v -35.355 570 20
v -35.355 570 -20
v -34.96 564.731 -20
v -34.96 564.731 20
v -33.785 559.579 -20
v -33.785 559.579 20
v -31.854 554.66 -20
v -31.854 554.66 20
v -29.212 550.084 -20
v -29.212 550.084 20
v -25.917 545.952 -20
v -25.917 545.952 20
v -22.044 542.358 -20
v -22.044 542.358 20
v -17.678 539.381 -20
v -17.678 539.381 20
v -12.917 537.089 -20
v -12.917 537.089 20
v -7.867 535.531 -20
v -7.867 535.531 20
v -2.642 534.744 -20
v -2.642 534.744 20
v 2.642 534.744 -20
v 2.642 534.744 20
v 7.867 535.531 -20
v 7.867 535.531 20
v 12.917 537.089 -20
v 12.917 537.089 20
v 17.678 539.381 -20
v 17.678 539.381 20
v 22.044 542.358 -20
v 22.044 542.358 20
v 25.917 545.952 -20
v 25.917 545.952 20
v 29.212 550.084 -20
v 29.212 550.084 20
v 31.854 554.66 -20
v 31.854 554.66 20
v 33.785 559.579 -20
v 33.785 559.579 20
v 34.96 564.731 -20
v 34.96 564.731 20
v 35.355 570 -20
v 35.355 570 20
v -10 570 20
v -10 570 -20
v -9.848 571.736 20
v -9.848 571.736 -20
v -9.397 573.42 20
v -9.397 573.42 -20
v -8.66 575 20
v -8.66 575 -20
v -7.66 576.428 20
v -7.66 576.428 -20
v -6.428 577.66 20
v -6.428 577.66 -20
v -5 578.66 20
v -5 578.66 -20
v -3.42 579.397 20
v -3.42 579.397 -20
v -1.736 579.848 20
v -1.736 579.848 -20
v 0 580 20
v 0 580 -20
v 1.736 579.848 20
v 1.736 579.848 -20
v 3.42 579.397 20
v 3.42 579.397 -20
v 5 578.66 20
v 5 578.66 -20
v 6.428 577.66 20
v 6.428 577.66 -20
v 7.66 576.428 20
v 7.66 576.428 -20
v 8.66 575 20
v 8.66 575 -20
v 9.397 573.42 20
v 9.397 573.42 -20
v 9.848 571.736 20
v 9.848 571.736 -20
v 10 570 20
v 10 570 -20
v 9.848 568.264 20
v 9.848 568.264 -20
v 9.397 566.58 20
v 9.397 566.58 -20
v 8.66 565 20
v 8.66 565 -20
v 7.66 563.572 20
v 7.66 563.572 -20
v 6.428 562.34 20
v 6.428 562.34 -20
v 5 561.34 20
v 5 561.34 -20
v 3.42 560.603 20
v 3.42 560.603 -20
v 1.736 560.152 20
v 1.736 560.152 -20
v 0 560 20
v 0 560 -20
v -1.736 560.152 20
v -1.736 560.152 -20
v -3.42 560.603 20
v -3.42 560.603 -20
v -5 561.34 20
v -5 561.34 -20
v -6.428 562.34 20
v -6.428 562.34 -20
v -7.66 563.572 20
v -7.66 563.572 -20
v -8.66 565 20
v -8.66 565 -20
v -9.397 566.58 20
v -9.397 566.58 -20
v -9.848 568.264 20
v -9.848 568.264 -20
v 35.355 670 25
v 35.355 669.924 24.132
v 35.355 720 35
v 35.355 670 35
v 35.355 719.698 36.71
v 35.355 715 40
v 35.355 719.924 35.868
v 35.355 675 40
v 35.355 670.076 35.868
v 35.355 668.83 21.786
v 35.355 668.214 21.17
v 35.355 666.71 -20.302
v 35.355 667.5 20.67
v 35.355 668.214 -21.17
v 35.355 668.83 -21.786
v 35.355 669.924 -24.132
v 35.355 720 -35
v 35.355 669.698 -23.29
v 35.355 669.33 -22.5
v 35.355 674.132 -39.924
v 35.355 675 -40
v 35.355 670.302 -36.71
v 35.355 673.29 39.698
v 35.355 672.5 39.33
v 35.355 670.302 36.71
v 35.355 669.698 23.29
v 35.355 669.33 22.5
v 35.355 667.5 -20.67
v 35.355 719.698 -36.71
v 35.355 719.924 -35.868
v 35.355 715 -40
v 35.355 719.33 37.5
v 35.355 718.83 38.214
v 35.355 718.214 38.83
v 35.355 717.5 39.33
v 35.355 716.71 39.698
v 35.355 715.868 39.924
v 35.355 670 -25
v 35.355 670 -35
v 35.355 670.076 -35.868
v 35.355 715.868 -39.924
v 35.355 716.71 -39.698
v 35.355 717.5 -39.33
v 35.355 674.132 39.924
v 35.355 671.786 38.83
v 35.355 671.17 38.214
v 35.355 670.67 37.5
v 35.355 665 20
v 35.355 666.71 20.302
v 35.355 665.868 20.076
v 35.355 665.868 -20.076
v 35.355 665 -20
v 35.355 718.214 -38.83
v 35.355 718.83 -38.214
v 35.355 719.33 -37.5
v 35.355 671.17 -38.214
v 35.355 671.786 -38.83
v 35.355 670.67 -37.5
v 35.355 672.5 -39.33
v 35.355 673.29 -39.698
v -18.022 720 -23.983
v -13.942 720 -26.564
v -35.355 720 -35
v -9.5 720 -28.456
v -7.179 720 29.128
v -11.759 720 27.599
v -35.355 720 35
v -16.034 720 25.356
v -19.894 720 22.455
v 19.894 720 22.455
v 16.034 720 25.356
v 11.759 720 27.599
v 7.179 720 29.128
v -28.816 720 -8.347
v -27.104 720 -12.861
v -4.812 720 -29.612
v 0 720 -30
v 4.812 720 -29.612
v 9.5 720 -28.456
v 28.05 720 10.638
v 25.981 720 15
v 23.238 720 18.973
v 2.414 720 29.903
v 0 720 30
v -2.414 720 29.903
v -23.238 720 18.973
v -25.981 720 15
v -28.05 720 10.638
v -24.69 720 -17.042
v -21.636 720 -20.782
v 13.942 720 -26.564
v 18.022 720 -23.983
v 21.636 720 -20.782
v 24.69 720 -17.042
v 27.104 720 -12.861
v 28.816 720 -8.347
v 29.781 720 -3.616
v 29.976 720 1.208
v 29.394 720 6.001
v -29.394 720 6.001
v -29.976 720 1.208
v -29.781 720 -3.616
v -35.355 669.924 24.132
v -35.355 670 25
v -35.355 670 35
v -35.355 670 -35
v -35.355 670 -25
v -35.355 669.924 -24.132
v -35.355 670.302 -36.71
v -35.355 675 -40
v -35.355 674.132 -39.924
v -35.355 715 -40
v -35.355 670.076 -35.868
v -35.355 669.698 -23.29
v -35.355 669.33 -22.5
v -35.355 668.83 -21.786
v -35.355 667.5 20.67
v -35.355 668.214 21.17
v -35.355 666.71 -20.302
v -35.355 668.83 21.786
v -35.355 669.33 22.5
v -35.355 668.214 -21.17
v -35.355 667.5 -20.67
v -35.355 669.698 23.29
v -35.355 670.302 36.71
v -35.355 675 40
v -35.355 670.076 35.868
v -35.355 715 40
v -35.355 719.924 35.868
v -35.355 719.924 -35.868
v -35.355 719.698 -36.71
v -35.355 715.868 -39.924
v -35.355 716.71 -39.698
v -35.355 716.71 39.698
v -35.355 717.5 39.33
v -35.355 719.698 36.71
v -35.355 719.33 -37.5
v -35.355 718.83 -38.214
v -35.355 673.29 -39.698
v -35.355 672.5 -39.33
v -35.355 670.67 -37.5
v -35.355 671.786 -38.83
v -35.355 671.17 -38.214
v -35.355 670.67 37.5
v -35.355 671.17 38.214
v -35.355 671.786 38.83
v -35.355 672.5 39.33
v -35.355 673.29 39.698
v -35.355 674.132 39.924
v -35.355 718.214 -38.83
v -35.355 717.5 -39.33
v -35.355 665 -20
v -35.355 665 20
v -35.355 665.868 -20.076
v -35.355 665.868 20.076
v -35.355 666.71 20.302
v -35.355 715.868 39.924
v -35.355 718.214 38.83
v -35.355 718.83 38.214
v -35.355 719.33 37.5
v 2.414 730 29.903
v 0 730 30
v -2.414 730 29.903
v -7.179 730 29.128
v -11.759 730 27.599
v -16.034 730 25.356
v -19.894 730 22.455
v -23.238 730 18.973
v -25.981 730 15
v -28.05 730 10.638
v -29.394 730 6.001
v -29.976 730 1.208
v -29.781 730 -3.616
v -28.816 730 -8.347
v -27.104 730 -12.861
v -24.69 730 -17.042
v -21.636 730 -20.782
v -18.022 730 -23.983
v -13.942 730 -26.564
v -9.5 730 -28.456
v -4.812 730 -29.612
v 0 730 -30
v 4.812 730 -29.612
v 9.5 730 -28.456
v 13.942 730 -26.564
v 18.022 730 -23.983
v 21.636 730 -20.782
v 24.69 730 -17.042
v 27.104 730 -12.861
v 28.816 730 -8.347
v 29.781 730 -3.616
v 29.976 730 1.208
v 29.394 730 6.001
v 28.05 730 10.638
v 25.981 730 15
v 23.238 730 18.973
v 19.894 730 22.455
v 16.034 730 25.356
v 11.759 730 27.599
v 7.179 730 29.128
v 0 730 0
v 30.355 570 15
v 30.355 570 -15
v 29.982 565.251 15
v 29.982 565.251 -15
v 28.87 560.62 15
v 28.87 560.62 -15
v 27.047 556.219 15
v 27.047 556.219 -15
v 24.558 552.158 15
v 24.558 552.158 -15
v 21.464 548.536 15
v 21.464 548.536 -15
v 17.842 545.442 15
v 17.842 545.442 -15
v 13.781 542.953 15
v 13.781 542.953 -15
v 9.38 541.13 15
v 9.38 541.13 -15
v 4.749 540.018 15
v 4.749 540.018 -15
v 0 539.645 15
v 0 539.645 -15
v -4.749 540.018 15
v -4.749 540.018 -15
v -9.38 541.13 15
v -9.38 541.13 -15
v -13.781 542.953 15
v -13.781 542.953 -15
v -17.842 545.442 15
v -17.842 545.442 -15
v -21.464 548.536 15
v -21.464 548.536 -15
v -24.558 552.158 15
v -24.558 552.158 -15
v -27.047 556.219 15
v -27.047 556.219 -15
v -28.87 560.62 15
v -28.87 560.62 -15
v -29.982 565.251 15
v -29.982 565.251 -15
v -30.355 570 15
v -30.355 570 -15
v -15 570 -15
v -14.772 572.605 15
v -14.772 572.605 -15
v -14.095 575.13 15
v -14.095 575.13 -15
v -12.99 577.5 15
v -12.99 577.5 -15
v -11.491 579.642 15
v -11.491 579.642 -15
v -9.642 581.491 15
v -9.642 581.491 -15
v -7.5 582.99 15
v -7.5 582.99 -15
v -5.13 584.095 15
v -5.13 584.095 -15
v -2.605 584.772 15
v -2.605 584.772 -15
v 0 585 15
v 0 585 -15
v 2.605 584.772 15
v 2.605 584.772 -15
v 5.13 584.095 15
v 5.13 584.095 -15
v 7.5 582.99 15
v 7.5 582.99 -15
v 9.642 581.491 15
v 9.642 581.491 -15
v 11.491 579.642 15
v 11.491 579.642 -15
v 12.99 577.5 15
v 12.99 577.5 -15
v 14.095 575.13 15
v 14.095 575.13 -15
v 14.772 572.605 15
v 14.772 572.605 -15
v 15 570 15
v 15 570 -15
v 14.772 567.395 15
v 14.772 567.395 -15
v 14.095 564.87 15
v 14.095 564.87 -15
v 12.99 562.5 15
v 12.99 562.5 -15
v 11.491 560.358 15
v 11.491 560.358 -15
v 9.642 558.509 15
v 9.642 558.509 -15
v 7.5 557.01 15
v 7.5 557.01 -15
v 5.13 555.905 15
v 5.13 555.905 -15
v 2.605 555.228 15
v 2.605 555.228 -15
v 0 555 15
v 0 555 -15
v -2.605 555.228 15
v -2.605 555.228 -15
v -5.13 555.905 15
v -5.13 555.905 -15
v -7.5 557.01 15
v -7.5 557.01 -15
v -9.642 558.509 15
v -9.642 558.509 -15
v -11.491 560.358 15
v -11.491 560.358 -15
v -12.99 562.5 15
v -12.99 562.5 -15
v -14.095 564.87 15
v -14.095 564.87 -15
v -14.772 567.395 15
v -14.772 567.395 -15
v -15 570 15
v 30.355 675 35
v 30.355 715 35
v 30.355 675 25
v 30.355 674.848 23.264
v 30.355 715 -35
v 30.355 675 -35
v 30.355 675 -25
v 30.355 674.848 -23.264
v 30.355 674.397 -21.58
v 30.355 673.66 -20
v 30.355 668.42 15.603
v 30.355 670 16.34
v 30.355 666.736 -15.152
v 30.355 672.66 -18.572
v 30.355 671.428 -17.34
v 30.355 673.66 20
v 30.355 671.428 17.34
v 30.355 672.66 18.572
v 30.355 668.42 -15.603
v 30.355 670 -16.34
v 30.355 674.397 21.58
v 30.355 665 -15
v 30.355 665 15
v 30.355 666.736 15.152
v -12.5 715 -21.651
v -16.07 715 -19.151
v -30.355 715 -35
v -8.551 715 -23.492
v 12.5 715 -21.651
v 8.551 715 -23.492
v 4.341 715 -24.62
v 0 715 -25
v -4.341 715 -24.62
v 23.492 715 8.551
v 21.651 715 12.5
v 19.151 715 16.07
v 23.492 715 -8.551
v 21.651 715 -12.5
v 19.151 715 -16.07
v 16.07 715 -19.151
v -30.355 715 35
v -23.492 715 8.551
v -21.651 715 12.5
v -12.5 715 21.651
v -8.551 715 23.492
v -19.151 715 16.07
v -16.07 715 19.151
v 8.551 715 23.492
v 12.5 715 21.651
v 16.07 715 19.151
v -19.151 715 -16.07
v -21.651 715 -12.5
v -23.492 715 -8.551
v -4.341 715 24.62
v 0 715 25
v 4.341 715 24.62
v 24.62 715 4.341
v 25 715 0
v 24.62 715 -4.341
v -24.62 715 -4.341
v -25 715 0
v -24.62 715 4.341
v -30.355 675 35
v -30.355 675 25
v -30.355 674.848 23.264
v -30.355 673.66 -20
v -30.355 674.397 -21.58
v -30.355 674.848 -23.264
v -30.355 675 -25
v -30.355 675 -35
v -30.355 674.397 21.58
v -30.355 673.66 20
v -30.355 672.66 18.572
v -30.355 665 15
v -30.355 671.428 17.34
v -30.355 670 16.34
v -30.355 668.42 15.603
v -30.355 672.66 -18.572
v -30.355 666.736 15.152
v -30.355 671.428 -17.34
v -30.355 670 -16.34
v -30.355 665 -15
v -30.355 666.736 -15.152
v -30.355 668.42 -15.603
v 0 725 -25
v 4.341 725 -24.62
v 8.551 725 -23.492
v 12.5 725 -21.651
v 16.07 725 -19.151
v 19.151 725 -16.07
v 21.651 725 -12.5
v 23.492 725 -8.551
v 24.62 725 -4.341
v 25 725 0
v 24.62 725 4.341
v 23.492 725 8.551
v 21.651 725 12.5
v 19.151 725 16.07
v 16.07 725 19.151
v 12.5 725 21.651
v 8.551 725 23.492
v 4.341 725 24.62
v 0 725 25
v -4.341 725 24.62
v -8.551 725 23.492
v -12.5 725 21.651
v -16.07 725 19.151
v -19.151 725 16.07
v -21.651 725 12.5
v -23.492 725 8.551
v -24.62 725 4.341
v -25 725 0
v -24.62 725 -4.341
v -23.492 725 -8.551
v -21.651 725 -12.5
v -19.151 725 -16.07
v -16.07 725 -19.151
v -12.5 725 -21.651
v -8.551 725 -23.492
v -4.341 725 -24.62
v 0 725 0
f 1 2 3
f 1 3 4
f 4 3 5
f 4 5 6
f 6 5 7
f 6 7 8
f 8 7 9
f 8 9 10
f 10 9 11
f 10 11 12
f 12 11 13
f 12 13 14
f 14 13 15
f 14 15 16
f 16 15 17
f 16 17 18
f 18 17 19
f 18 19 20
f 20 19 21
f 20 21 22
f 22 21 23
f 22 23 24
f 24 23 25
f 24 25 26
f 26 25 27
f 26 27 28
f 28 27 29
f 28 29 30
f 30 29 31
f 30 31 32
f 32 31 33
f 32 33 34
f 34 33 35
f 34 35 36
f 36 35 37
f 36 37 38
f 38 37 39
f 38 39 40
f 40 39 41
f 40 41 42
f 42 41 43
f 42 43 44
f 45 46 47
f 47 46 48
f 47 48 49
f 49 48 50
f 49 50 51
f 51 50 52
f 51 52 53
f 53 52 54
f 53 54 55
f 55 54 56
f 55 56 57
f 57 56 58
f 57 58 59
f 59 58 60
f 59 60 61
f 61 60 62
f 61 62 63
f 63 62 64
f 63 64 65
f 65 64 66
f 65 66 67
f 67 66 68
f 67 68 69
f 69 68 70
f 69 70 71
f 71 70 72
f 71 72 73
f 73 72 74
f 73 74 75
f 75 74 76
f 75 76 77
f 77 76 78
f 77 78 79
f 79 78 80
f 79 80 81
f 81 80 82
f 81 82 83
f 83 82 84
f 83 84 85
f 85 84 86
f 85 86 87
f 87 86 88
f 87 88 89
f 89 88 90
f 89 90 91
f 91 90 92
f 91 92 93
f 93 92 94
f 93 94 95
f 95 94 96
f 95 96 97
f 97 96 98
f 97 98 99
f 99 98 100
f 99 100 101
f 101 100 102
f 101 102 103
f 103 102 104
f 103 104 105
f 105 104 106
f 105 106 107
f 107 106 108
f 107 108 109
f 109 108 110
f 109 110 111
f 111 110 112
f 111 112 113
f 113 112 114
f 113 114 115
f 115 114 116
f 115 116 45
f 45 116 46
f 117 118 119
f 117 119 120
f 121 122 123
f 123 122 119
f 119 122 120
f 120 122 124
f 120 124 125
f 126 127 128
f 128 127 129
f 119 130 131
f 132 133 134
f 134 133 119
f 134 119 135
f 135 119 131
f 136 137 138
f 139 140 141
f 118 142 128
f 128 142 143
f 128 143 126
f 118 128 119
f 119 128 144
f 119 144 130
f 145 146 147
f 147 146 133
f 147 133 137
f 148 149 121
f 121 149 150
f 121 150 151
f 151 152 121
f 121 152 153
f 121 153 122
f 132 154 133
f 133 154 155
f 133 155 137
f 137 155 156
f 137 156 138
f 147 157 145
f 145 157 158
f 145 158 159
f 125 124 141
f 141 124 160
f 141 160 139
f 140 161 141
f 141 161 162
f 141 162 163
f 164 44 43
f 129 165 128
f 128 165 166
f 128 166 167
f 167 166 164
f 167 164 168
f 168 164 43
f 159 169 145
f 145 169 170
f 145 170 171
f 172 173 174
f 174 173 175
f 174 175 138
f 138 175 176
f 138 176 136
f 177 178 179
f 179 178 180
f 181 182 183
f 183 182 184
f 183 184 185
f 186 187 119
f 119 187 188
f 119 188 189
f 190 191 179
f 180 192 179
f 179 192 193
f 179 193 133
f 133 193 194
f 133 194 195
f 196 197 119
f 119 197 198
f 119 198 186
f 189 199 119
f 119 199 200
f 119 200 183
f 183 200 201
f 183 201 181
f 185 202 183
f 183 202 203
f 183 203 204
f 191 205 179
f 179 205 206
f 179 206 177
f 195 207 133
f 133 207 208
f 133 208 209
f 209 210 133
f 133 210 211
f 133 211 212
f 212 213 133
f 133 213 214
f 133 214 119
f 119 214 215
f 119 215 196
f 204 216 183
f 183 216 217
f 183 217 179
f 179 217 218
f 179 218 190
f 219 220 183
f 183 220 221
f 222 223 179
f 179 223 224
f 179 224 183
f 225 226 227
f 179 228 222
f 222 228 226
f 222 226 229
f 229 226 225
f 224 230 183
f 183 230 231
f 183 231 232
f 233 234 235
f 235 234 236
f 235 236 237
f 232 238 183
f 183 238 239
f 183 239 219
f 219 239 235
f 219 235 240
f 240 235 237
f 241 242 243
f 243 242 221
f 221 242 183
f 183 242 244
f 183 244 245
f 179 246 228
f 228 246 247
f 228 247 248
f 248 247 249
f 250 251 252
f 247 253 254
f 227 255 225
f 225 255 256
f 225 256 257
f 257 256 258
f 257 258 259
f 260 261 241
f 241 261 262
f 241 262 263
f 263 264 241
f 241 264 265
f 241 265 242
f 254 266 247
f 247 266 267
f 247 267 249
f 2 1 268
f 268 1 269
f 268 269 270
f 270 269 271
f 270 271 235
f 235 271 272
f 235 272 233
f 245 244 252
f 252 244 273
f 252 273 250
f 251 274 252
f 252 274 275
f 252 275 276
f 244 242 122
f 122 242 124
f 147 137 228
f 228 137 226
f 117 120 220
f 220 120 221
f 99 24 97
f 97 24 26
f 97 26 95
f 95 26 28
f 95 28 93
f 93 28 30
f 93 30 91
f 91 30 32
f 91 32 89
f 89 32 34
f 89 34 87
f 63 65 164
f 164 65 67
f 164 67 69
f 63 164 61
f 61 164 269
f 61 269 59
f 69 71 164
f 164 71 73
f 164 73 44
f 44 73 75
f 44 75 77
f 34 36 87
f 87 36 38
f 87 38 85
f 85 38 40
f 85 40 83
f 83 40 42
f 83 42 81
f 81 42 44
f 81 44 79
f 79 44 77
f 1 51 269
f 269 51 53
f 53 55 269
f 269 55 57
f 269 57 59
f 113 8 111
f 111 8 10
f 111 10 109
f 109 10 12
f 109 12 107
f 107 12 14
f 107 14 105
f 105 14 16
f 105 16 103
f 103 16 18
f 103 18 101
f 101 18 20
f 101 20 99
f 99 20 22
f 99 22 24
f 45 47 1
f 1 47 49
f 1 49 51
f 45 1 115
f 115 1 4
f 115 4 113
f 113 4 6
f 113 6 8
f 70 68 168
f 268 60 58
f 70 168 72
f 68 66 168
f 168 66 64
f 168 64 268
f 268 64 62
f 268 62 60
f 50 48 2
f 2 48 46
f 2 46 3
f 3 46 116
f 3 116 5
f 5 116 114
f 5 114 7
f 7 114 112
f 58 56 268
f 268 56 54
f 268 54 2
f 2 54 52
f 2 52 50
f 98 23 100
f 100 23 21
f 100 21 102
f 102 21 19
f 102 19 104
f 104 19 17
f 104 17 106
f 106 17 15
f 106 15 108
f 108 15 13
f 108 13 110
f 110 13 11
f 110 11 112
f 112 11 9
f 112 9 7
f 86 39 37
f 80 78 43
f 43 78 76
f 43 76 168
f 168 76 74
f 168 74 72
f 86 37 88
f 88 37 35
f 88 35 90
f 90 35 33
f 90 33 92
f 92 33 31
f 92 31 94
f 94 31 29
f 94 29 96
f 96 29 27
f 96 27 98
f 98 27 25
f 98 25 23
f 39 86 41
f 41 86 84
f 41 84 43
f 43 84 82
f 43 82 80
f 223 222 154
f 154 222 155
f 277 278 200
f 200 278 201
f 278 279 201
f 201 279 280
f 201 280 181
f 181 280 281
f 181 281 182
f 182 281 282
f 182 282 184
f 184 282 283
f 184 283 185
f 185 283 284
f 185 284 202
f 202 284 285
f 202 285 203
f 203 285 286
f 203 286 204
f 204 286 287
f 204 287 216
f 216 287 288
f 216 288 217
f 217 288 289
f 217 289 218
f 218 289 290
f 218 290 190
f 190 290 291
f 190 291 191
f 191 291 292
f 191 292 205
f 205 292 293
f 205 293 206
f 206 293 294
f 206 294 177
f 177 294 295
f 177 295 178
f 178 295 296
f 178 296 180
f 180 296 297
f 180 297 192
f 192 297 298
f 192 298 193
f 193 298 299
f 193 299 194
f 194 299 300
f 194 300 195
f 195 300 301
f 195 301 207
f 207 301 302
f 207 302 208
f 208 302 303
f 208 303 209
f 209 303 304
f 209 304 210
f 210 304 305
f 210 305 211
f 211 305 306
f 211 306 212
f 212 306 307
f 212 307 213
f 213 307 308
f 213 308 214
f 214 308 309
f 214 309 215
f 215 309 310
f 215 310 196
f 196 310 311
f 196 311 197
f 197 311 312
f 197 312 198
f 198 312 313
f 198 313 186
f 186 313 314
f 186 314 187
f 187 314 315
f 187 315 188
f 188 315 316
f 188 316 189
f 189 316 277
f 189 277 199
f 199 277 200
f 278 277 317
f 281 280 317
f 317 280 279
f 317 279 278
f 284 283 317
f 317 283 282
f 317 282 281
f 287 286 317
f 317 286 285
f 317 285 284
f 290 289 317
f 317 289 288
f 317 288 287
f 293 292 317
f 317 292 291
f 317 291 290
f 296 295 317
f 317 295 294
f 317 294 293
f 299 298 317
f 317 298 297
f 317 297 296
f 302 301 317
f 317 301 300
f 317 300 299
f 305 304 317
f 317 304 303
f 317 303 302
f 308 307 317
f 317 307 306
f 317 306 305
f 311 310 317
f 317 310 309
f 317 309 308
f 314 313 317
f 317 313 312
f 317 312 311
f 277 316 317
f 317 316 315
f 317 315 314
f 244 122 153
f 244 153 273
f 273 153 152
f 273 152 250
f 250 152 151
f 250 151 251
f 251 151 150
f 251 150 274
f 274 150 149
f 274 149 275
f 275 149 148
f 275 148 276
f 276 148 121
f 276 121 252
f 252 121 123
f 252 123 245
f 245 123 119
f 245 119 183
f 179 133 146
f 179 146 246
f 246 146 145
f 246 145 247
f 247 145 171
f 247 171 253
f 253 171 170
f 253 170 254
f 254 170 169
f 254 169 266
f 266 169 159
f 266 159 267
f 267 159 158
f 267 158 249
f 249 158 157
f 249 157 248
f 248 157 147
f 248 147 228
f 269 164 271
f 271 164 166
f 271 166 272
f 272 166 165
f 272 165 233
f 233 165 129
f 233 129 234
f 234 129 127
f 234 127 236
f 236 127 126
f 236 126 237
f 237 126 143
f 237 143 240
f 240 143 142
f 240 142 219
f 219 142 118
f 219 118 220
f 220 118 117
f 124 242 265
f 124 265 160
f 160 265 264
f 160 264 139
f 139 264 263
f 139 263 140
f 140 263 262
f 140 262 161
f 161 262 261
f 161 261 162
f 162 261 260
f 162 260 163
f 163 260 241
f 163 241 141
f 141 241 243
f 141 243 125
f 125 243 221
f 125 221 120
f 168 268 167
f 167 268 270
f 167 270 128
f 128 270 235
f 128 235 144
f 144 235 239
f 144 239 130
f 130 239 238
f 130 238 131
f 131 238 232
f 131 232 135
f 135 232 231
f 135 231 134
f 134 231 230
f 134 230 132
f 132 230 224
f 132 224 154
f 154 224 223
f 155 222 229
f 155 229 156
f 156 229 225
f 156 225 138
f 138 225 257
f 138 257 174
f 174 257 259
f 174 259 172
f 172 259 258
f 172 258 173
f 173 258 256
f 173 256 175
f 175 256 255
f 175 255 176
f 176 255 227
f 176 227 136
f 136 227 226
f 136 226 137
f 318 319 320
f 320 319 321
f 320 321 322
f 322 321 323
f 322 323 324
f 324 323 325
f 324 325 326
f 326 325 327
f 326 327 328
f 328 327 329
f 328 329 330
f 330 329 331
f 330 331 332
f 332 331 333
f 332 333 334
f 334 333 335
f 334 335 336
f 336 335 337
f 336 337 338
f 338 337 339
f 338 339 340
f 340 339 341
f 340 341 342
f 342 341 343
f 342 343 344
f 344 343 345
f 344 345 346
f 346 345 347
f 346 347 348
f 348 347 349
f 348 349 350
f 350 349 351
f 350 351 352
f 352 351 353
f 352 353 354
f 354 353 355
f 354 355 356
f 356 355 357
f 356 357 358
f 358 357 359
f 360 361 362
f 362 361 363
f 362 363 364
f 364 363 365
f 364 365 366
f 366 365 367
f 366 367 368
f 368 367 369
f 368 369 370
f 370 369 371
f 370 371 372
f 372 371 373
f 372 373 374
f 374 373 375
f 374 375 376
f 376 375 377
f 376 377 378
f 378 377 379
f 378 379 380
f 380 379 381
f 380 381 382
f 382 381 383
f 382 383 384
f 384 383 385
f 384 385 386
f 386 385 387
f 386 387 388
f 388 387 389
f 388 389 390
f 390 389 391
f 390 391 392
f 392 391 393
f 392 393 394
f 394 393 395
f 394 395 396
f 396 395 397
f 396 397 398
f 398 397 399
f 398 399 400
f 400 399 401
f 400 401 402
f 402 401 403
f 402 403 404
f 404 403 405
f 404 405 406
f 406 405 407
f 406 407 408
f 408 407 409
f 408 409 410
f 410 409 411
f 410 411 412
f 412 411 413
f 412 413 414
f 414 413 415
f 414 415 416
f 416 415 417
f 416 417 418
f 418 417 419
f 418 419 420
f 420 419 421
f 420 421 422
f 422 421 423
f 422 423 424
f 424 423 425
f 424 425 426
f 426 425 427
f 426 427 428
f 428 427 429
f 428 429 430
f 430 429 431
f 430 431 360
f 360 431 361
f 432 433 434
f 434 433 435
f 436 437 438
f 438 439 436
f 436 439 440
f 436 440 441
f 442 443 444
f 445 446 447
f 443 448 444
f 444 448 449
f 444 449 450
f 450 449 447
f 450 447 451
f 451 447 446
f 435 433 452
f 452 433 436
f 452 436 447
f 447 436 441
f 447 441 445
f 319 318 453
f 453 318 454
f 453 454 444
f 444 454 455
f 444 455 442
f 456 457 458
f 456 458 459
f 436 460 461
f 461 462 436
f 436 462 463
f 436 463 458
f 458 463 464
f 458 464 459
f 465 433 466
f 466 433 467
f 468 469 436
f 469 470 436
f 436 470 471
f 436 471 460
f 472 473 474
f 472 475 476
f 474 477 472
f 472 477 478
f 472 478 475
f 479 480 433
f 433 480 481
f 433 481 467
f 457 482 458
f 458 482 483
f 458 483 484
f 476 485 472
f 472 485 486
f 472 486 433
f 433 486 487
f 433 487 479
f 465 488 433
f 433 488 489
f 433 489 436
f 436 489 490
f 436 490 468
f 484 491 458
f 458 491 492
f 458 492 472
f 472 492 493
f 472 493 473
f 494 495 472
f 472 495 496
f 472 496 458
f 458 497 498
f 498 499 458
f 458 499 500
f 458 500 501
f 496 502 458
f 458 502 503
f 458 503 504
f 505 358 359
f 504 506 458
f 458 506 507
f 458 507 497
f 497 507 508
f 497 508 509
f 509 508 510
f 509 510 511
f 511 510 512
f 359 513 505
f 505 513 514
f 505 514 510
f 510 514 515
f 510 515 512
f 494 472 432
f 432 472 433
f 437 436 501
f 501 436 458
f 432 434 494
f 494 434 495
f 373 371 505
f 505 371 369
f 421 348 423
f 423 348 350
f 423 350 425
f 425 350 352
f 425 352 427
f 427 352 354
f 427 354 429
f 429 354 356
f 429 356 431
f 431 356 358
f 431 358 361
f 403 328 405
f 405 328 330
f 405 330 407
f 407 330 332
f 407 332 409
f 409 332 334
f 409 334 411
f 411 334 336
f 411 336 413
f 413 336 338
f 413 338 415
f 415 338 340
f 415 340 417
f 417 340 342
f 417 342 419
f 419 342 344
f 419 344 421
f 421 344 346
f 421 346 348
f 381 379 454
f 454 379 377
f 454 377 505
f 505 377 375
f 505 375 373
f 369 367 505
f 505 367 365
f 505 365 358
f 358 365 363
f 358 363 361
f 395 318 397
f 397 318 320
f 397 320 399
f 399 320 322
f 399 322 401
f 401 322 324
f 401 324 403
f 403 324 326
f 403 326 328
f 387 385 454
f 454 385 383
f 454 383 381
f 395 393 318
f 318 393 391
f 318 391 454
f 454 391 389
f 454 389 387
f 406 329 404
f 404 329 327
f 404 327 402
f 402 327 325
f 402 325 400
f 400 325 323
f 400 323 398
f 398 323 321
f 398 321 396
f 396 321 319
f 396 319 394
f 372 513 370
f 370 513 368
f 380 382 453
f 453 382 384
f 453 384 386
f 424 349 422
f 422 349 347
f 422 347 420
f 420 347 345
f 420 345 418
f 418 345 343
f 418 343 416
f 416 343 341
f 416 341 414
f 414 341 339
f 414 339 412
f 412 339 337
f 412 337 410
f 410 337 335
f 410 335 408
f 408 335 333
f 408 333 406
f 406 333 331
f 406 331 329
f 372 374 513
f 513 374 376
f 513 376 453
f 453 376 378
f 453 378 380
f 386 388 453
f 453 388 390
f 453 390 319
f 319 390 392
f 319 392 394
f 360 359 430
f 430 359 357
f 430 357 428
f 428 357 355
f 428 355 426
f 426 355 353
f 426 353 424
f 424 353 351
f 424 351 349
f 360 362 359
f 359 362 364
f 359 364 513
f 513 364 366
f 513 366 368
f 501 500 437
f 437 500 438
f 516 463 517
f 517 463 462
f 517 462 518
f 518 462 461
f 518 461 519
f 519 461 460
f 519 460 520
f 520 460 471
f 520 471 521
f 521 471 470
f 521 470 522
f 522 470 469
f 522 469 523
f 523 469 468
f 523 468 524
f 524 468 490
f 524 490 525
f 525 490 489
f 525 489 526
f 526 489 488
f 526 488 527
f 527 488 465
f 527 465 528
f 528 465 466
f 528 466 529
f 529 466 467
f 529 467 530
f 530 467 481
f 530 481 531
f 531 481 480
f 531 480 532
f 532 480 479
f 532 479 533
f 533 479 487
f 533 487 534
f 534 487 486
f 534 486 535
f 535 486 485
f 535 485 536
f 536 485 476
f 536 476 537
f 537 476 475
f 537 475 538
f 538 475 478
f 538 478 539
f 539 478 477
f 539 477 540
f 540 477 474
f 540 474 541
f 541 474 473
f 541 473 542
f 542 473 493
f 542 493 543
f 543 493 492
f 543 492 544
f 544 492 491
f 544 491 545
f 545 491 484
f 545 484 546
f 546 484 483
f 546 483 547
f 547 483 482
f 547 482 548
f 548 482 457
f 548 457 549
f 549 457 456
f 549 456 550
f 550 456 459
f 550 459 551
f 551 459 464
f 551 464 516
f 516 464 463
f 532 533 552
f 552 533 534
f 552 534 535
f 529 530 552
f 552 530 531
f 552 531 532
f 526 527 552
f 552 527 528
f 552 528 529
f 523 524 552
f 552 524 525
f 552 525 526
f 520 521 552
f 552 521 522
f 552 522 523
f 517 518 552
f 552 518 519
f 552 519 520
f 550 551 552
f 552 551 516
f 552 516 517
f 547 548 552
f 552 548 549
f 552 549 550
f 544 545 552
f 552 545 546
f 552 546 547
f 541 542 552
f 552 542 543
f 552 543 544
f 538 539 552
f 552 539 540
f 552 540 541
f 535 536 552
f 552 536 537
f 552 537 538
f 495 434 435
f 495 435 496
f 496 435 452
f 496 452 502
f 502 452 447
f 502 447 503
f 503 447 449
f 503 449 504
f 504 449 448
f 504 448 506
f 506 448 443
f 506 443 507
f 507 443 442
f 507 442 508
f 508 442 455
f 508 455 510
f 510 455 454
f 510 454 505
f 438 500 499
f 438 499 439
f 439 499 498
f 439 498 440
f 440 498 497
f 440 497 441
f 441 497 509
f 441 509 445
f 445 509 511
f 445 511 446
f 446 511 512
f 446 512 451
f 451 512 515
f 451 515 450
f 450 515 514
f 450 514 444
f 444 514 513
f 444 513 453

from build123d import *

# Parameters (mm, degrees)
BOSS_EXTRUDE1_DEPTH      = 40
BOSS_EXTRUDE1_DEPTH_BACK = 40
SKETCH1_R                = 10
CUT_EXTRUDE1_START       = -20
CUT_EXTRUDE1_DEPTH       = 20
CUT_EXTRUDE2_START       = -20
CUT_EXTRUDE2_DEPTH       = 20
SKETCH6_R                = 30
BOSS_EXTRUDE2_DEPTH      = 10
FILLET2_R                = 5
SHELL1_START             = -15
SHELL1_OUTLINE_R         = 15
SHELL1_DEPTH             = 30
SHELL1_START_2           = -35
SHELL1_2_OUTLINE_W       = 60.710678118
SHELL1_2_OUTLINE_H       = 40
SHELL1_2_DEPTH           = 70
SHELL1_START_3           = 715
SHELL1_3_OUTLINE_R       = 25
SHELL1_3_DEPTH           = 10
SHELL1_START_4           = -30.355339059
SHELL1_4_DEPTH           = 60.710678118


with BuildPart() as part:
    # Sketch1 → Boss-Extrude1 (new, two sides: drawn at the far end of the back side and taken through both)
    with BuildSketch(Plane.XY.offset(-BOSS_EXTRUDE1_DEPTH_BACK)):
        with BuildLine():
            Line((-35.355339059, 570), (-35.355339059, 720))
            Line((-35.355339059, 720), (35.355339059, 720))
            Line((35.355339059, 720), (35.355339059, 570))
            ThreePointArc((35.355339059, 570), (0, 534.644660941), (-35.355339059, 570))
        make_face()
        with Locations(Location((0, 570, 0), (0, 0, 180))):
            Circle(SKETCH1_R, mode=Mode.SUBTRACT)
    extrude(amount=BOSS_EXTRUDE1_DEPTH + BOSS_EXTRUDE1_DEPTH_BACK)

    # Sketch2 → Cut-Extrude1 (cut)
    with BuildSketch(Plane.XY.offset(40).offset(CUT_EXTRUDE1_START)):
        with BuildLine():
            Line((-35.355339059, 570), (-35.355339059, 670))
            Line((-35.355339059, 670), (35.355339059, 670))
            Line((35.355339059, 670), (35.355339059, 570))
            ThreePointArc((35.355339059, 570), (0, 534.644660941), (-35.355339059, 570))
        make_face()
    extrude(amount=CUT_EXTRUDE1_DEPTH, mode=Mode.SUBTRACT)

    # Sketch3 → Cut-Extrude2 (cut)
    with BuildSketch(Plane(origin=(0, 0, -40), x_dir=(-1, 0, 0), z_dir=(0, 0, -1)).offset(CUT_EXTRUDE2_START)):
        with BuildLine():
            Line((-35.355339059, 570), (-35.355339059, 670))
            Line((-35.355339059, 670), (35.355339059, 670))
            Line((35.355339059, 670), (35.355339059, 570))
            ThreePointArc((35.355339059, 570), (0, 534.644660941), (-35.355339059, 570))
        make_face()
    extrude(amount=CUT_EXTRUDE2_DEPTH, mode=Mode.SUBTRACT)

    # Sketch6 → Boss-Extrude2 (add)
    with BuildSketch(Plane(origin=(0, 720, 0), x_dir=(1, 0, 0), z_dir=(0, 1, 0))):
        with Locations(Location((0, 0, 0), (0, 0, 270))):
            Circle(SKETCH6_R)
    extrude(amount=BOSS_EXTRUDE2_DEPTH)

    # Fillet2
    fillet2_edges = [part.edges().sort_by_distance(p)[0] for p in [
        (0, 720, -40),
        (0, 720, 40),
        (0, 670, 40),
        (0, 670, 20),
        (0, 670, -40),
        (0, 670, -20),
    ]]
    fillet(fillet2_edges, radius=FILLET2_R)

    # Shell1: read off the stored shape, not the designer's step
    # Shell1 outline → Shell1 (cut)
    with BuildSketch(Plane.XY.offset(SHELL1_START)):
        with BuildLine():
            ThreePointArc((-30.355339059, 570), (0, 539.644660941), (30.355339059, 570))
            Line((30.355339059, 570), (30.355339059, 715))
            Line((30.355339059, 715), (-30.355339059, 715))
            Line((-30.355339059, 715), (-30.355339059, 570))
        make_face()
        with Locations((0, 570)):
            Circle(SHELL1_OUTLINE_R, mode=Mode.SUBTRACT)
    extrude(amount=SHELL1_DEPTH, mode=Mode.SUBTRACT)

    # Shell1 2 outline → Shell1 2 (cut)
    with BuildSketch(Plane.XY.offset(SHELL1_START_2)):
        with Locations((0, 695)):
            Rectangle(SHELL1_2_OUTLINE_W, SHELL1_2_OUTLINE_H)
    extrude(amount=SHELL1_2_DEPTH, mode=Mode.SUBTRACT)

    # Shell1 3 outline → Shell1 3 (cut)
    with BuildSketch(Plane(origin=(0, 0, 0), x_dir=(1, 0, 0), z_dir=(0, 1, 0)).offset(SHELL1_START_3)):
        Circle(SHELL1_3_OUTLINE_R)
    extrude(amount=SHELL1_3_DEPTH, mode=Mode.SUBTRACT)

    # Shell1 4 outline → Shell1 4 (cut)
    with BuildSketch(Plane.YZ.offset(SHELL1_START_4)):
        with BuildLine():
            ThreePointArc((675, 25), (672.071067812, 17.928932188), (665, 15))
            Line((665, 15), (675, 15))
            Line((675, 15), (675, 25))
        make_face()
        with BuildLine():
            Line((675, -15), (665, -15))
            ThreePointArc((665, -15), (672.071067812, -17.928932188), (675, -25))
            Line((675, -25), (675, -15))
        make_face()
    extrude(amount=SHELL1_4_DEPTH, mode=Mode.SUBTRACT)


solid = part.part
